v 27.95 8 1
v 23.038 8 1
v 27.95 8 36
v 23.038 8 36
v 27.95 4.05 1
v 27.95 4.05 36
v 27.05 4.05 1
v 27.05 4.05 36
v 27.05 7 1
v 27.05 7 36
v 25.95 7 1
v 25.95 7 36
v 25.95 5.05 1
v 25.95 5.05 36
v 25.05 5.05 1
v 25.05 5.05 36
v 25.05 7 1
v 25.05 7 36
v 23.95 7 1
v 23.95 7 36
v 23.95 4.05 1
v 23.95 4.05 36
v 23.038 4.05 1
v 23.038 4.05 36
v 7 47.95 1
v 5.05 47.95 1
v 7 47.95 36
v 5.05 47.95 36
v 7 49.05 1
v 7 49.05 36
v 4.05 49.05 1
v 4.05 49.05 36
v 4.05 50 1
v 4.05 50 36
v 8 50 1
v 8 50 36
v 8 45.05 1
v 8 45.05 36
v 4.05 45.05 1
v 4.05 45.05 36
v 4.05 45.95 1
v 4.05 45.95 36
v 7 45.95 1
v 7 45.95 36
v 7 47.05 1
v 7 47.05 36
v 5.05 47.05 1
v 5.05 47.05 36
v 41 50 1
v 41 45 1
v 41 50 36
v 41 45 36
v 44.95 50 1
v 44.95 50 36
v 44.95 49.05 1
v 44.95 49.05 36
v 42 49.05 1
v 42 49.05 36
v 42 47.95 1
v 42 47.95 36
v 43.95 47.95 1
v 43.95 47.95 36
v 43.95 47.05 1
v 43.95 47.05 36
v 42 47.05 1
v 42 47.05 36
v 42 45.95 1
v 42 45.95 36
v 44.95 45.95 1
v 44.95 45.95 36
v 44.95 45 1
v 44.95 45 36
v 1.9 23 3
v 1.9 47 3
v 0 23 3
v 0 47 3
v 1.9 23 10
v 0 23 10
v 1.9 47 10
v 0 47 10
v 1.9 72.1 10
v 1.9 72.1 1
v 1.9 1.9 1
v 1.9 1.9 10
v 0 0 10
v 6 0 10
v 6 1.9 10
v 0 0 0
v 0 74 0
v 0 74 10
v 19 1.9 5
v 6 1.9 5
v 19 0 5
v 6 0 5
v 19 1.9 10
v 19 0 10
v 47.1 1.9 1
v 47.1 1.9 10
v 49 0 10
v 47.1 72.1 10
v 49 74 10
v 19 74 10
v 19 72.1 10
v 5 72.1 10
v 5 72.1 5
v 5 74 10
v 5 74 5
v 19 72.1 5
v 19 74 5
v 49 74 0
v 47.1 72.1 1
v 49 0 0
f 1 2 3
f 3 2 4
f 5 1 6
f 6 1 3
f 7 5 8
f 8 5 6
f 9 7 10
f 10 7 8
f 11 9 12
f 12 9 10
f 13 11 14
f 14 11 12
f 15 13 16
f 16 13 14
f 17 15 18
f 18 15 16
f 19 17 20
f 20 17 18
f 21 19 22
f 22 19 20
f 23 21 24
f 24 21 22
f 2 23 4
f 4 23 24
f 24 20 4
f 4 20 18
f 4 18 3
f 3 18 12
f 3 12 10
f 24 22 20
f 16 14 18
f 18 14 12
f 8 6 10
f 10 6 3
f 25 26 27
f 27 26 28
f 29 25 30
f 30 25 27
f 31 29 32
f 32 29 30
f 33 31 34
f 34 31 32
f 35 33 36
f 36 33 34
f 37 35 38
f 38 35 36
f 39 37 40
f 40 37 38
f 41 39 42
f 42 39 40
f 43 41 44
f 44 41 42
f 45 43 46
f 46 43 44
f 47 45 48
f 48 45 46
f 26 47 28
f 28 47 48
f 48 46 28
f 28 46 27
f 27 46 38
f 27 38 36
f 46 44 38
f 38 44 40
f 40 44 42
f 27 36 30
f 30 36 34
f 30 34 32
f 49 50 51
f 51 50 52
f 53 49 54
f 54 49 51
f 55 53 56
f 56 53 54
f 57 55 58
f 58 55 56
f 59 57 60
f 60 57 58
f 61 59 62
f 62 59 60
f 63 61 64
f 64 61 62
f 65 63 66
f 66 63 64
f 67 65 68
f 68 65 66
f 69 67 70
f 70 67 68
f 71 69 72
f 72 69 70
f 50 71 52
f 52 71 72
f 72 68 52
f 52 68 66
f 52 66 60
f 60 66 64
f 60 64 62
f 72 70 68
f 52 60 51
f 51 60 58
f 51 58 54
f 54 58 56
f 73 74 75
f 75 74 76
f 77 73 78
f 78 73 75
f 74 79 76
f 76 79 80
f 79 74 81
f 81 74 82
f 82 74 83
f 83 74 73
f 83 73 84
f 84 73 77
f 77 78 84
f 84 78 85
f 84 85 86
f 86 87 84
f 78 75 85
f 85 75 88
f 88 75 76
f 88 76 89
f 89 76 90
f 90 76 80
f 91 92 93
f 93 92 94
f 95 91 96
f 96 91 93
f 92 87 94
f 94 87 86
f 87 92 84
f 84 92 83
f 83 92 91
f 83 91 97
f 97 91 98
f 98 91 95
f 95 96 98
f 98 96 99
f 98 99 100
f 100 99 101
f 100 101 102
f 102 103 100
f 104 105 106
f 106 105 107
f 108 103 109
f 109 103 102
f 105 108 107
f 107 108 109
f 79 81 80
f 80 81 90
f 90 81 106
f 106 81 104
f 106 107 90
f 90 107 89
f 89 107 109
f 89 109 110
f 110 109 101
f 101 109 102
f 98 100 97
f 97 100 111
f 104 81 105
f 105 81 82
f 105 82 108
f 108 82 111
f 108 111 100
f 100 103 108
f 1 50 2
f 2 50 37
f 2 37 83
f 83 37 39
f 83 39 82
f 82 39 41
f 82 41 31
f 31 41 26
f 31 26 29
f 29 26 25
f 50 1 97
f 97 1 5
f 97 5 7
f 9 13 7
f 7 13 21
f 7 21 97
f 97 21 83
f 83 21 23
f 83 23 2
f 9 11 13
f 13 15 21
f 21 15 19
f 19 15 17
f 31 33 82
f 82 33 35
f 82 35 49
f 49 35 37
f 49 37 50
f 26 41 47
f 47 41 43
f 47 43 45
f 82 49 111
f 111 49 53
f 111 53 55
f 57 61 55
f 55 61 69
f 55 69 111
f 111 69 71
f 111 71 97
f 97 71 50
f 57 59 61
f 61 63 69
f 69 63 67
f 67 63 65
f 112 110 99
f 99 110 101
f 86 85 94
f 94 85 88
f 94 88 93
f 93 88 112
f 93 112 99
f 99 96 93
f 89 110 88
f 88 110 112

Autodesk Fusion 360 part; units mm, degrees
sketch "Sketch1" plane through (0, 0, 0) normal (0, 0, 1) x (1, 0, 0)
  line L0 (0, 0) -> (49, 0)
  line L1 (49, 0) -> (49, 74)
  line L2 (49, 74) -> (0, 74)
  line L3 (0, 74) -> (0, 0)
extrude "Extrude1" add sketch "Sketch1" along normal blind 10
sketch "Sketch2" plane through (0, 0, 10) normal (0, 0, 1) x (-1, 0, 0)
  line L0 (0, -74) -> (0, 0)
  line L1 (0, 0) -> (-49, 0)
  line L2 (-49, 0) -> (-49, -74)
  line L3 (-49, -74) -> (0, -74)
  line L4 (-1.9, -72.1) -> (-47.1, -72.1)
  line L5 (-47.1, -72.1) -> (-47.1, -1.9)
  line L6 (-47.1, -1.9) -> (-1.9, -1.9)
  line L7 (-1.9, -1.9) -> (-1.9, -72.1)
extrude "Extrude2" cut sketch "Sketch2" against normal blind 9 contours L4 L5 L6 L7
sketch "Sketch3" plane through (0, 74, 0) normal (0, 1, 0) x (-1, 0, 0)
  line L0 (-49, 0) -> (0, 0)
  line L1 (0, 0) -> (0, 10)
  line L2 (0, 10) -> (-49, 10)
  line L3 (-49, 10) -> (-49, 0)
sketch "Sketch4" plane through (0, 74, 0) normal (0, 1, 0) x (-1, 0, 0)
  line L0 (-5, 5) -> (-19, 5)
  line L1 (-19, 5) -> (-19, 10)
  line L2 (-19, 10) -> (-5, 10)
  line L3 (-5, 10) -> (-5, 5)
extrude "Extrude3" cut sketch "Sketch4" against normal blind 6
sketch "Sketch5" plane through (0, 0, 0) normal (0, 1, 0) x (1, 0, 0)
sketch "Sketch6" plane through (0, 0, 0) normal (0, -1, 0) x (1, 0, 0)
  line L0 (0, 0) -> (49, 0)
  line L1 (49, 0) -> (49, 10)
  line L2 (49, 10) -> (0, 10)
  line L3 (0, 10) -> (0, 0)
  line L4 (6, 5) -> (19, 5)
  line L5 (19, 5) -> (19, 10)
  line L6 (19, 10) -> (6, 10)
  line L7 (6, 10) -> (6, 5)
extrude "Extrude4" cut sketch "Sketch6" against normal blind 6 contours L2 L4 L5 L6 L7
sketch "Sketch7" plane through (0, 0, 0) normal (-1, 0, 0) x (0, -1, 0)
  line L0 (-74, 0) -> (0, 0)
  line L1 (0, 0) -> (0, 10)
  line L2 (0, 10) -> (-74, 10)
  line L3 (-74, 10) -> (-74, 0)
  line L4 (-23, 11) -> (-47, 11)
  line L5 (-47, 11) -> (-47, 3)
  line L6 (-47, 3) -> (-23, 3)
  line L7 (-23, 3) -> (-23, 11)
extrude "Extrude5" cut sketch "Sketch7" against normal blind 3 contours L2 L5 L6 L7
sketch "Sketch8" plane through (0, 0, 1) normal (0, 0, 1) x (-1, 0, 0)
  line L0 (-1.9, -1.9) -> (-47.1, -1.9)
  line L1 (-47.1, -1.9) -> (-47.1, -72.1)
  line L2 (-47.1, -72.1) -> (-1.9, -72.1)
  line L3 (-1.9, -72.1) -> (-1.9, -1.9)
  line L4 (-4.05, -50) -> (-8, -50)
  line L5 (-8, -50) -> (-8, -49.05)
  line L6 (-8, -49.05) -> (-4.05, -49.05)
  line L7 (-4.05, -49.05) -> (-4.05, -50)
  line L8 (-7, -49.05) -> (-8, -49.05)
  line L9 (-8, -49.05) -> (-8, -45.05)
  line L10 (-8, -45.05) -> (-7, -45.05)
  line L11 (-7, -45.05) -> (-7, -49.05)
  line L12 (-7, -45.05) -> (-4.05, -45.05)
  line L13 (-4.05, -45.05) -> (-4.05, -45.95)
  line L14 (-4.05, -45.95) -> (-7, -45.95)
  line L15 (-7, -45.95) -> (-7, -45.05)
  line L16 (-7, -47.05) -> (-5.05, -47.05)
  line L17 (-5.05, -47.05) -> (-5.05, -47.95)
  line L18 (-5.05, -47.95) -> (-7, -47.95)
  line L19 (-7, -47.95) -> (-7, -47.05)
  line L20 (-44.95, -50) -> (-41, -50)
  line L21 (-41, -50) -> (-41, -49.05)
  line L22 (-41, -49.05) -> (-44.95, -49.05)
  line L23 (-44.95, -49.05) -> (-44.95, -50)
  line L24 (-41, -49.05) -> (-42, -49.05)
  line L25 (-42, -49.05) -> (-42, -45)
  line L26 (-42, -45) -> (-41, -45)
  line L27 (-41, -45) -> (-41, -49.05)
  line L28 (-42, -47.95) -> (-43.95, -47.95)
  line L29 (-43.95, -47.95) -> (-43.95, -47.05)
  line L30 (-43.95, -47.05) -> (-42, -47.05)
  line L31 (-42, -47.05) -> (-42, -47.95)
  line L32 (-42, -45) -> (-44.95, -45)
  line L33 (-44.95, -45) -> (-44.95, -45.95)
  line L34 (-44.95, -45.95) -> (-42, -45.95)
  line L35 (-42, -45.95) -> (-42, -45)
extrude "Extrude6" add sketch "Sketch8" along normal blind 35 contours L4 L5 L6 L7 L8 | L6 L8 L9 L10 L11 L15 L19 | L11 L16 L17 L18 L19 | L11 L12 L13 L14 L15 | L20 L21 L22 L23 L24 | L22 L24 L25 L26 L27 L31 L35 | L25 L28 L29 L30 L31 | L25 L32 L33 L34 L35
sketch "Sketch9" plane through (0, 0, 0) normal (-1, 0, 0) x (0, -1, 0)
sketch "Sketch10" plane through (0, 0, 1) normal (0, 0, 1) x (-1, 0, 0)
  line L0 (-5.05, -47.95) -> (-7, -47.95)
  line L1 (-7, -47.95) -> (-7, -49.05)
  line L2 (-7, -49.05) -> (-4.05, -49.05)
  line L3 (-4.05, -49.05) -> (-4.05, -50)
  line L4 (-4.05, -50) -> (-8, -50)
  line L5 (-8, -50) -> (-8, -45.05)
  line L6 (-8, -45.05) -> (-4.05, -45.05)
  line L7 (-4.05, -45.05) -> (-4.05, -45.95)
  line L8 (-4.05, -45.95) -> (-7, -45.95)
  line L9 (-7, -45.95) -> (-7, -47.05)
  line L10 (-7, -47.05) -> (-5.05, -47.05)
  line L11 (-5.05, -47.05) -> (-5.05, -47.95)
  line L12 (-41, -45) -> (-41, -50)
  line L13 (-41, -50) -> (-44.95, -50)
  line L14 (-44.95, -50) -> (-44.95, -49.05)
  line L15 (-44.95, -49.05) -> (-42, -49.05)
  line L16 (-42, -49.05) -> (-42, -47.95)
  line L17 (-42, -47.95) -> (-43.95, -47.95)
  line L18 (-43.95, -47.95) -> (-43.95, -47.05)
  line L19 (-43.95, -47.05) -> (-42, -47.05)
  line L20 (-42, -47.05) -> (-42, -45.95)
  line L21 (-42, -45.95) -> (-44.95, -45.95)
  line L22 (-44.95, -45.95) -> (-44.95, -45)
  line L23 (-44.95, -45) -> (-41, -45)
  line L24 (-1.9, -1.9) -> (-47.1, -1.9)
  line L25 (-47.1, -1.9) -> (-47.1, -72.1)
  line L26 (-47.1, -72.1) -> (-1.9, -72.1)
  line L27 (-1.9, -72.1) -> (-1.9, -1.9)
  line L28 (-27.95, -4.05) -> (-27.05, -4.05)
  line L29 (-27.05, -4.05) -> (-27.05, -8)
  line L30 (-27.05, -8) -> (-27.95, -8)
  line L31 (-27.95, -8) -> (-27.95, -4.05)
  line L32 (-27.0625, -8) -> (-23.0375, -8)
  line L33 (-23.0375, -8) -> (-23.0375, -7)
  line L34 (-23.0375, -7) -> (-27.0625, -7)
  line L35 (-27.0625, -7) -> (-27.0625, -8)
  line L36 (-23.0375, -7) -> (-23.95, -7)
  line L37 (-23.95, -7) -> (-23.95, -4.05)
  line L38 (-23.95, -4.05) -> (-23.0375, -4.05)
  line L39 (-23.0375, -4.05) -> (-23.0375, -7)
  line L40 (-25.05, -7) -> (-25.95, -7)
  line L41 (-25.95, -7) -> (-25.95, -5.05)
  line L42 (-25.95, -5.05) -> (-25.05, -5.05)
  line L43 (-25.05, -5.05) -> (-25.05, -7)
extrude "Extrude7" add sketch "Sketch10" along normal blind 35 contours L28 L29 L30 L31 L34 L35 | L29 L32 L33 L34 L36 L40 | L29 L30 L32 L34 L35 | L34 L40 L41 L42 L43 | L34 L36 L37 L38 L39
